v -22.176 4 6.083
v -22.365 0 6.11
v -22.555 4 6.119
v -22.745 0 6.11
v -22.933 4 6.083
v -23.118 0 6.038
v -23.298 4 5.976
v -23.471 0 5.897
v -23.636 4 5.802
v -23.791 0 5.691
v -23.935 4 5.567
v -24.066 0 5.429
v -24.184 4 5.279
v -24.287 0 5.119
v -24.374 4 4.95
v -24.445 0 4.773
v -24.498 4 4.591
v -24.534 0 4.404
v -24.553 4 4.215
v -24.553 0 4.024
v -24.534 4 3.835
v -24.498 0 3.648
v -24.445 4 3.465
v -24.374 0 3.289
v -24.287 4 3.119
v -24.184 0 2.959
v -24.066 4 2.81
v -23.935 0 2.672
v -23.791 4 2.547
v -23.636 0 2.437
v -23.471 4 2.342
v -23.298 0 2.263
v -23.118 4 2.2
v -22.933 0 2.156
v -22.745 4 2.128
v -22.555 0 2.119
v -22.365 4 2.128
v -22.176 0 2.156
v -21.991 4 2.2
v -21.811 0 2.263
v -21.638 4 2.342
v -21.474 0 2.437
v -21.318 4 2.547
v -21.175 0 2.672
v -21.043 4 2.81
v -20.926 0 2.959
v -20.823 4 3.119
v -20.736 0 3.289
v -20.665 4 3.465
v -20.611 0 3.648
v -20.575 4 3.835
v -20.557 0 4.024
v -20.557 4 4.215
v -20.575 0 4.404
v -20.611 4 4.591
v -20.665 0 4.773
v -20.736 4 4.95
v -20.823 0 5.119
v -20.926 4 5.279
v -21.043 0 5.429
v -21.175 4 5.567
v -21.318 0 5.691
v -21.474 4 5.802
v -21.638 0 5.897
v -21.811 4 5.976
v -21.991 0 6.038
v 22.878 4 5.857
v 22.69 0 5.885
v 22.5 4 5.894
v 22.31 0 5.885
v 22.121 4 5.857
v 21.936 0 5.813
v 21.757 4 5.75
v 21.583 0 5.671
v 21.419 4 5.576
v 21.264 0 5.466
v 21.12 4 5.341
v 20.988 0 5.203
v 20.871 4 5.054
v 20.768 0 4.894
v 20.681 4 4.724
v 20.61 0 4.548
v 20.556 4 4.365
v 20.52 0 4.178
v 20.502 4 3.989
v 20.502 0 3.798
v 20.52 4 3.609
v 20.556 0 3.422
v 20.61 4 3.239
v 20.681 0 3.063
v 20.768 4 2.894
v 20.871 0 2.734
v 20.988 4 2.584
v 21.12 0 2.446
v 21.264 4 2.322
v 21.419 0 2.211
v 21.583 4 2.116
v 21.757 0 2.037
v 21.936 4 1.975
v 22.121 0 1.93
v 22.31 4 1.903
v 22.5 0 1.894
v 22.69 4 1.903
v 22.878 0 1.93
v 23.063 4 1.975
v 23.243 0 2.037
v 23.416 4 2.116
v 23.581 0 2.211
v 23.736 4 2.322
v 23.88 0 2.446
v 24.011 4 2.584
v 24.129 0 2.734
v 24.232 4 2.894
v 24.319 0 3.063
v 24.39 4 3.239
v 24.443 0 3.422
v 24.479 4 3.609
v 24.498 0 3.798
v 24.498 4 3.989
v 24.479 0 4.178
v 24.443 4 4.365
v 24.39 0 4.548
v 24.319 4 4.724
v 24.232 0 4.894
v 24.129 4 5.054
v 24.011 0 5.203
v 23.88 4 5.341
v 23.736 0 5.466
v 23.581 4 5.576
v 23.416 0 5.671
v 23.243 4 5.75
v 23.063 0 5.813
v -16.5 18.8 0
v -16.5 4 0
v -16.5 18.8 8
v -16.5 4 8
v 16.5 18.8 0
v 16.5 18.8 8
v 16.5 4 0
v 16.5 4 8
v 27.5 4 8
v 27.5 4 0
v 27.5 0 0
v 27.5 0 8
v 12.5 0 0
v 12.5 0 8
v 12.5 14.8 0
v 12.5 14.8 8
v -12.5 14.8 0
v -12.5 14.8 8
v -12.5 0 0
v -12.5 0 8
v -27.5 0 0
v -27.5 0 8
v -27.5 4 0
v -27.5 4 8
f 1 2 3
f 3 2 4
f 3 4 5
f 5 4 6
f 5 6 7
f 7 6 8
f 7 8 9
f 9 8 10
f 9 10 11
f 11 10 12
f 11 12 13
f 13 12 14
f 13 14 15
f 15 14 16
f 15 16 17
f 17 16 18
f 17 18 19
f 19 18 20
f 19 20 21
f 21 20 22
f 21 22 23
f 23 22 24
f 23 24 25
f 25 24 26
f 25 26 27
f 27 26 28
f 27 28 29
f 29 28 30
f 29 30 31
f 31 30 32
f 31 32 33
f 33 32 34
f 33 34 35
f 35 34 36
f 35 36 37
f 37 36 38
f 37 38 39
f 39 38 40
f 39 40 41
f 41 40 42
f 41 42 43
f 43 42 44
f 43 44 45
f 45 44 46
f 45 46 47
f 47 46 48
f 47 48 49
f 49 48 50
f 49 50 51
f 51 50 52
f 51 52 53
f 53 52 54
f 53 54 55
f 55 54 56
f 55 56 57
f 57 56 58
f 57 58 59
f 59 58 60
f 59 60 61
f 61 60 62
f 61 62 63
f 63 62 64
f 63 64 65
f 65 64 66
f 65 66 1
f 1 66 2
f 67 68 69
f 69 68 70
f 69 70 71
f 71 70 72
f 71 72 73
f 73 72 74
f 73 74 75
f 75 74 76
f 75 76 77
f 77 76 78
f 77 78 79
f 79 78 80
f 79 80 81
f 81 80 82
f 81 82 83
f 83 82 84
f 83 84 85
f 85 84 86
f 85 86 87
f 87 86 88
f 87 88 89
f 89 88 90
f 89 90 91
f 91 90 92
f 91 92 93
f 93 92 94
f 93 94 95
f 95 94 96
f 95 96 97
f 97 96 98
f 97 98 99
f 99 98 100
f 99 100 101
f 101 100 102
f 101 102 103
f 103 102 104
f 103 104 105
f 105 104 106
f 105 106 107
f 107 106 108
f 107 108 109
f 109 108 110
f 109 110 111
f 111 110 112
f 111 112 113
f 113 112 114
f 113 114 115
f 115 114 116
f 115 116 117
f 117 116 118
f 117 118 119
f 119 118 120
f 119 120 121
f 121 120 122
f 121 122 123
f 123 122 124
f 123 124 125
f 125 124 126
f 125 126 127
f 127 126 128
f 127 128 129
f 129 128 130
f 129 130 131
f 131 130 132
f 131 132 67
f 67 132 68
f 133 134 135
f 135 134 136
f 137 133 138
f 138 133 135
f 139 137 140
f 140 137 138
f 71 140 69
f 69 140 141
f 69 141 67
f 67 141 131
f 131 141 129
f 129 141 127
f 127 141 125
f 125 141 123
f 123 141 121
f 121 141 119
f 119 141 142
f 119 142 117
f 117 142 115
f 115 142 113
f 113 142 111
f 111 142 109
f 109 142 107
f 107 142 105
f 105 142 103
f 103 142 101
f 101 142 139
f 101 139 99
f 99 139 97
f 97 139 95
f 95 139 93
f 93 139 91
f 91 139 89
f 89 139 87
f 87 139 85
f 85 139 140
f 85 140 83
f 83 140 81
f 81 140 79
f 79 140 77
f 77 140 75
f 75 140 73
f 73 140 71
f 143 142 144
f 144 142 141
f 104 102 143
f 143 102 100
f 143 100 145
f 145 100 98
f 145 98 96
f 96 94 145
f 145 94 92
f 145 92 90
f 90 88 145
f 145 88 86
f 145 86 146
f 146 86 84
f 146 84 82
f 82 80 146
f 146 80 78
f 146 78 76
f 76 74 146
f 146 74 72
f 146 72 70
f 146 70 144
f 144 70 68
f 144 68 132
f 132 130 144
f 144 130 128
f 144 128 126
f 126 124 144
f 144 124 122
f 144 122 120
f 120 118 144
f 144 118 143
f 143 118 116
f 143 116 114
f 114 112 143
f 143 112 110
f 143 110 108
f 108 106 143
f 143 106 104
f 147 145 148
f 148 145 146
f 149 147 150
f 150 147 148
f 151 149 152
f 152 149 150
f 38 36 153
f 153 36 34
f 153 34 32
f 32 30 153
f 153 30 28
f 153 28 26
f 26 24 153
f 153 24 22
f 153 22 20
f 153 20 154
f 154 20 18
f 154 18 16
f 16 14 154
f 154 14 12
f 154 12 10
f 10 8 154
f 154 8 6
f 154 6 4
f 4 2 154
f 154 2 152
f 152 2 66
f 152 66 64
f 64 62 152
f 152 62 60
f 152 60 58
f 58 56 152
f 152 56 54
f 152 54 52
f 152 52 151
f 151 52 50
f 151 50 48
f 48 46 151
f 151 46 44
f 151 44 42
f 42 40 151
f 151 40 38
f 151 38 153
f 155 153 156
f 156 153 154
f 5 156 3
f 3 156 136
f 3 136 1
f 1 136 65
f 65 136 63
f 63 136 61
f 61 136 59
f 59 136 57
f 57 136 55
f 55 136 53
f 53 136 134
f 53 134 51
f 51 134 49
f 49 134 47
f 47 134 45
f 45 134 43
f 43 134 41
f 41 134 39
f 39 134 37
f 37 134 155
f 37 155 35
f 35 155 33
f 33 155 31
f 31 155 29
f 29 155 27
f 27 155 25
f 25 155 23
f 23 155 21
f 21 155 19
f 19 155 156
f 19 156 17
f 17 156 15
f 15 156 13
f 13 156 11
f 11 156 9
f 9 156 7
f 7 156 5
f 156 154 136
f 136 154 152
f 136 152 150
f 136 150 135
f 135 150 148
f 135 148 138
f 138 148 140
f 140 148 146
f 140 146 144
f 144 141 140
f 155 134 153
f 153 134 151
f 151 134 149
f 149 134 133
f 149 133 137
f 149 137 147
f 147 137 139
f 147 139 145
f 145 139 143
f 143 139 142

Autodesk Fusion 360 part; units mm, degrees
sketch "Sketch1" plane through (0, 0, 0) normal (0, 0, 1) x (1, 0, 0)
  line L0 (-27.5, 0) -> (-12.5, 0)
  line L1 (-12.5, 0) -> (-12.5, 14.8)
  line L2 (-12.5, 14.8) -> (0, 14.8)
  line L3 (0, 31) -> (0, -29)
  line L4 (27.5, 0) -> (12.5, 0)
  line L5 (12.5, 0) -> (12.5, 14.8)
  line L6 (12.5, 14.8) -> (0, 14.8)
  line L7 (-27.5, 4) -> (-16.5, 4)
  line L8 (-16.5, 4) -> (-16.5, 18.8)
  line L9 (-16.5, 18.8) -> (0, 18.8)
  line L10 (16.5, 18.8) -> (0, 18.8)
  line L11 (16.5, 4) -> (16.5, 18.8)
  line L12 (27.5, 4) -> (16.5, 4)
  line L13 (27.5, 4) -> (27.5, 0)
  line L14 (-27.5, 4) -> (-27.5, 0)
  dimension "d2" = 4
  dimension "d3" = 15
  dimension "d4" = 25
  dimension "d5" = 14.8
extrude "Extrude1" add sketch "Sketch1" along normal blind 8
hole "Hole1" at (22.4998, 0, 3.8936) direction (0, 1, 0) diameter 4 depth 5 tip angle 118
hole "Hole2" at (-22.5548, 0, 4.1194) direction (0, 1, 0) diameter 4 depth 5 tip angle 118
